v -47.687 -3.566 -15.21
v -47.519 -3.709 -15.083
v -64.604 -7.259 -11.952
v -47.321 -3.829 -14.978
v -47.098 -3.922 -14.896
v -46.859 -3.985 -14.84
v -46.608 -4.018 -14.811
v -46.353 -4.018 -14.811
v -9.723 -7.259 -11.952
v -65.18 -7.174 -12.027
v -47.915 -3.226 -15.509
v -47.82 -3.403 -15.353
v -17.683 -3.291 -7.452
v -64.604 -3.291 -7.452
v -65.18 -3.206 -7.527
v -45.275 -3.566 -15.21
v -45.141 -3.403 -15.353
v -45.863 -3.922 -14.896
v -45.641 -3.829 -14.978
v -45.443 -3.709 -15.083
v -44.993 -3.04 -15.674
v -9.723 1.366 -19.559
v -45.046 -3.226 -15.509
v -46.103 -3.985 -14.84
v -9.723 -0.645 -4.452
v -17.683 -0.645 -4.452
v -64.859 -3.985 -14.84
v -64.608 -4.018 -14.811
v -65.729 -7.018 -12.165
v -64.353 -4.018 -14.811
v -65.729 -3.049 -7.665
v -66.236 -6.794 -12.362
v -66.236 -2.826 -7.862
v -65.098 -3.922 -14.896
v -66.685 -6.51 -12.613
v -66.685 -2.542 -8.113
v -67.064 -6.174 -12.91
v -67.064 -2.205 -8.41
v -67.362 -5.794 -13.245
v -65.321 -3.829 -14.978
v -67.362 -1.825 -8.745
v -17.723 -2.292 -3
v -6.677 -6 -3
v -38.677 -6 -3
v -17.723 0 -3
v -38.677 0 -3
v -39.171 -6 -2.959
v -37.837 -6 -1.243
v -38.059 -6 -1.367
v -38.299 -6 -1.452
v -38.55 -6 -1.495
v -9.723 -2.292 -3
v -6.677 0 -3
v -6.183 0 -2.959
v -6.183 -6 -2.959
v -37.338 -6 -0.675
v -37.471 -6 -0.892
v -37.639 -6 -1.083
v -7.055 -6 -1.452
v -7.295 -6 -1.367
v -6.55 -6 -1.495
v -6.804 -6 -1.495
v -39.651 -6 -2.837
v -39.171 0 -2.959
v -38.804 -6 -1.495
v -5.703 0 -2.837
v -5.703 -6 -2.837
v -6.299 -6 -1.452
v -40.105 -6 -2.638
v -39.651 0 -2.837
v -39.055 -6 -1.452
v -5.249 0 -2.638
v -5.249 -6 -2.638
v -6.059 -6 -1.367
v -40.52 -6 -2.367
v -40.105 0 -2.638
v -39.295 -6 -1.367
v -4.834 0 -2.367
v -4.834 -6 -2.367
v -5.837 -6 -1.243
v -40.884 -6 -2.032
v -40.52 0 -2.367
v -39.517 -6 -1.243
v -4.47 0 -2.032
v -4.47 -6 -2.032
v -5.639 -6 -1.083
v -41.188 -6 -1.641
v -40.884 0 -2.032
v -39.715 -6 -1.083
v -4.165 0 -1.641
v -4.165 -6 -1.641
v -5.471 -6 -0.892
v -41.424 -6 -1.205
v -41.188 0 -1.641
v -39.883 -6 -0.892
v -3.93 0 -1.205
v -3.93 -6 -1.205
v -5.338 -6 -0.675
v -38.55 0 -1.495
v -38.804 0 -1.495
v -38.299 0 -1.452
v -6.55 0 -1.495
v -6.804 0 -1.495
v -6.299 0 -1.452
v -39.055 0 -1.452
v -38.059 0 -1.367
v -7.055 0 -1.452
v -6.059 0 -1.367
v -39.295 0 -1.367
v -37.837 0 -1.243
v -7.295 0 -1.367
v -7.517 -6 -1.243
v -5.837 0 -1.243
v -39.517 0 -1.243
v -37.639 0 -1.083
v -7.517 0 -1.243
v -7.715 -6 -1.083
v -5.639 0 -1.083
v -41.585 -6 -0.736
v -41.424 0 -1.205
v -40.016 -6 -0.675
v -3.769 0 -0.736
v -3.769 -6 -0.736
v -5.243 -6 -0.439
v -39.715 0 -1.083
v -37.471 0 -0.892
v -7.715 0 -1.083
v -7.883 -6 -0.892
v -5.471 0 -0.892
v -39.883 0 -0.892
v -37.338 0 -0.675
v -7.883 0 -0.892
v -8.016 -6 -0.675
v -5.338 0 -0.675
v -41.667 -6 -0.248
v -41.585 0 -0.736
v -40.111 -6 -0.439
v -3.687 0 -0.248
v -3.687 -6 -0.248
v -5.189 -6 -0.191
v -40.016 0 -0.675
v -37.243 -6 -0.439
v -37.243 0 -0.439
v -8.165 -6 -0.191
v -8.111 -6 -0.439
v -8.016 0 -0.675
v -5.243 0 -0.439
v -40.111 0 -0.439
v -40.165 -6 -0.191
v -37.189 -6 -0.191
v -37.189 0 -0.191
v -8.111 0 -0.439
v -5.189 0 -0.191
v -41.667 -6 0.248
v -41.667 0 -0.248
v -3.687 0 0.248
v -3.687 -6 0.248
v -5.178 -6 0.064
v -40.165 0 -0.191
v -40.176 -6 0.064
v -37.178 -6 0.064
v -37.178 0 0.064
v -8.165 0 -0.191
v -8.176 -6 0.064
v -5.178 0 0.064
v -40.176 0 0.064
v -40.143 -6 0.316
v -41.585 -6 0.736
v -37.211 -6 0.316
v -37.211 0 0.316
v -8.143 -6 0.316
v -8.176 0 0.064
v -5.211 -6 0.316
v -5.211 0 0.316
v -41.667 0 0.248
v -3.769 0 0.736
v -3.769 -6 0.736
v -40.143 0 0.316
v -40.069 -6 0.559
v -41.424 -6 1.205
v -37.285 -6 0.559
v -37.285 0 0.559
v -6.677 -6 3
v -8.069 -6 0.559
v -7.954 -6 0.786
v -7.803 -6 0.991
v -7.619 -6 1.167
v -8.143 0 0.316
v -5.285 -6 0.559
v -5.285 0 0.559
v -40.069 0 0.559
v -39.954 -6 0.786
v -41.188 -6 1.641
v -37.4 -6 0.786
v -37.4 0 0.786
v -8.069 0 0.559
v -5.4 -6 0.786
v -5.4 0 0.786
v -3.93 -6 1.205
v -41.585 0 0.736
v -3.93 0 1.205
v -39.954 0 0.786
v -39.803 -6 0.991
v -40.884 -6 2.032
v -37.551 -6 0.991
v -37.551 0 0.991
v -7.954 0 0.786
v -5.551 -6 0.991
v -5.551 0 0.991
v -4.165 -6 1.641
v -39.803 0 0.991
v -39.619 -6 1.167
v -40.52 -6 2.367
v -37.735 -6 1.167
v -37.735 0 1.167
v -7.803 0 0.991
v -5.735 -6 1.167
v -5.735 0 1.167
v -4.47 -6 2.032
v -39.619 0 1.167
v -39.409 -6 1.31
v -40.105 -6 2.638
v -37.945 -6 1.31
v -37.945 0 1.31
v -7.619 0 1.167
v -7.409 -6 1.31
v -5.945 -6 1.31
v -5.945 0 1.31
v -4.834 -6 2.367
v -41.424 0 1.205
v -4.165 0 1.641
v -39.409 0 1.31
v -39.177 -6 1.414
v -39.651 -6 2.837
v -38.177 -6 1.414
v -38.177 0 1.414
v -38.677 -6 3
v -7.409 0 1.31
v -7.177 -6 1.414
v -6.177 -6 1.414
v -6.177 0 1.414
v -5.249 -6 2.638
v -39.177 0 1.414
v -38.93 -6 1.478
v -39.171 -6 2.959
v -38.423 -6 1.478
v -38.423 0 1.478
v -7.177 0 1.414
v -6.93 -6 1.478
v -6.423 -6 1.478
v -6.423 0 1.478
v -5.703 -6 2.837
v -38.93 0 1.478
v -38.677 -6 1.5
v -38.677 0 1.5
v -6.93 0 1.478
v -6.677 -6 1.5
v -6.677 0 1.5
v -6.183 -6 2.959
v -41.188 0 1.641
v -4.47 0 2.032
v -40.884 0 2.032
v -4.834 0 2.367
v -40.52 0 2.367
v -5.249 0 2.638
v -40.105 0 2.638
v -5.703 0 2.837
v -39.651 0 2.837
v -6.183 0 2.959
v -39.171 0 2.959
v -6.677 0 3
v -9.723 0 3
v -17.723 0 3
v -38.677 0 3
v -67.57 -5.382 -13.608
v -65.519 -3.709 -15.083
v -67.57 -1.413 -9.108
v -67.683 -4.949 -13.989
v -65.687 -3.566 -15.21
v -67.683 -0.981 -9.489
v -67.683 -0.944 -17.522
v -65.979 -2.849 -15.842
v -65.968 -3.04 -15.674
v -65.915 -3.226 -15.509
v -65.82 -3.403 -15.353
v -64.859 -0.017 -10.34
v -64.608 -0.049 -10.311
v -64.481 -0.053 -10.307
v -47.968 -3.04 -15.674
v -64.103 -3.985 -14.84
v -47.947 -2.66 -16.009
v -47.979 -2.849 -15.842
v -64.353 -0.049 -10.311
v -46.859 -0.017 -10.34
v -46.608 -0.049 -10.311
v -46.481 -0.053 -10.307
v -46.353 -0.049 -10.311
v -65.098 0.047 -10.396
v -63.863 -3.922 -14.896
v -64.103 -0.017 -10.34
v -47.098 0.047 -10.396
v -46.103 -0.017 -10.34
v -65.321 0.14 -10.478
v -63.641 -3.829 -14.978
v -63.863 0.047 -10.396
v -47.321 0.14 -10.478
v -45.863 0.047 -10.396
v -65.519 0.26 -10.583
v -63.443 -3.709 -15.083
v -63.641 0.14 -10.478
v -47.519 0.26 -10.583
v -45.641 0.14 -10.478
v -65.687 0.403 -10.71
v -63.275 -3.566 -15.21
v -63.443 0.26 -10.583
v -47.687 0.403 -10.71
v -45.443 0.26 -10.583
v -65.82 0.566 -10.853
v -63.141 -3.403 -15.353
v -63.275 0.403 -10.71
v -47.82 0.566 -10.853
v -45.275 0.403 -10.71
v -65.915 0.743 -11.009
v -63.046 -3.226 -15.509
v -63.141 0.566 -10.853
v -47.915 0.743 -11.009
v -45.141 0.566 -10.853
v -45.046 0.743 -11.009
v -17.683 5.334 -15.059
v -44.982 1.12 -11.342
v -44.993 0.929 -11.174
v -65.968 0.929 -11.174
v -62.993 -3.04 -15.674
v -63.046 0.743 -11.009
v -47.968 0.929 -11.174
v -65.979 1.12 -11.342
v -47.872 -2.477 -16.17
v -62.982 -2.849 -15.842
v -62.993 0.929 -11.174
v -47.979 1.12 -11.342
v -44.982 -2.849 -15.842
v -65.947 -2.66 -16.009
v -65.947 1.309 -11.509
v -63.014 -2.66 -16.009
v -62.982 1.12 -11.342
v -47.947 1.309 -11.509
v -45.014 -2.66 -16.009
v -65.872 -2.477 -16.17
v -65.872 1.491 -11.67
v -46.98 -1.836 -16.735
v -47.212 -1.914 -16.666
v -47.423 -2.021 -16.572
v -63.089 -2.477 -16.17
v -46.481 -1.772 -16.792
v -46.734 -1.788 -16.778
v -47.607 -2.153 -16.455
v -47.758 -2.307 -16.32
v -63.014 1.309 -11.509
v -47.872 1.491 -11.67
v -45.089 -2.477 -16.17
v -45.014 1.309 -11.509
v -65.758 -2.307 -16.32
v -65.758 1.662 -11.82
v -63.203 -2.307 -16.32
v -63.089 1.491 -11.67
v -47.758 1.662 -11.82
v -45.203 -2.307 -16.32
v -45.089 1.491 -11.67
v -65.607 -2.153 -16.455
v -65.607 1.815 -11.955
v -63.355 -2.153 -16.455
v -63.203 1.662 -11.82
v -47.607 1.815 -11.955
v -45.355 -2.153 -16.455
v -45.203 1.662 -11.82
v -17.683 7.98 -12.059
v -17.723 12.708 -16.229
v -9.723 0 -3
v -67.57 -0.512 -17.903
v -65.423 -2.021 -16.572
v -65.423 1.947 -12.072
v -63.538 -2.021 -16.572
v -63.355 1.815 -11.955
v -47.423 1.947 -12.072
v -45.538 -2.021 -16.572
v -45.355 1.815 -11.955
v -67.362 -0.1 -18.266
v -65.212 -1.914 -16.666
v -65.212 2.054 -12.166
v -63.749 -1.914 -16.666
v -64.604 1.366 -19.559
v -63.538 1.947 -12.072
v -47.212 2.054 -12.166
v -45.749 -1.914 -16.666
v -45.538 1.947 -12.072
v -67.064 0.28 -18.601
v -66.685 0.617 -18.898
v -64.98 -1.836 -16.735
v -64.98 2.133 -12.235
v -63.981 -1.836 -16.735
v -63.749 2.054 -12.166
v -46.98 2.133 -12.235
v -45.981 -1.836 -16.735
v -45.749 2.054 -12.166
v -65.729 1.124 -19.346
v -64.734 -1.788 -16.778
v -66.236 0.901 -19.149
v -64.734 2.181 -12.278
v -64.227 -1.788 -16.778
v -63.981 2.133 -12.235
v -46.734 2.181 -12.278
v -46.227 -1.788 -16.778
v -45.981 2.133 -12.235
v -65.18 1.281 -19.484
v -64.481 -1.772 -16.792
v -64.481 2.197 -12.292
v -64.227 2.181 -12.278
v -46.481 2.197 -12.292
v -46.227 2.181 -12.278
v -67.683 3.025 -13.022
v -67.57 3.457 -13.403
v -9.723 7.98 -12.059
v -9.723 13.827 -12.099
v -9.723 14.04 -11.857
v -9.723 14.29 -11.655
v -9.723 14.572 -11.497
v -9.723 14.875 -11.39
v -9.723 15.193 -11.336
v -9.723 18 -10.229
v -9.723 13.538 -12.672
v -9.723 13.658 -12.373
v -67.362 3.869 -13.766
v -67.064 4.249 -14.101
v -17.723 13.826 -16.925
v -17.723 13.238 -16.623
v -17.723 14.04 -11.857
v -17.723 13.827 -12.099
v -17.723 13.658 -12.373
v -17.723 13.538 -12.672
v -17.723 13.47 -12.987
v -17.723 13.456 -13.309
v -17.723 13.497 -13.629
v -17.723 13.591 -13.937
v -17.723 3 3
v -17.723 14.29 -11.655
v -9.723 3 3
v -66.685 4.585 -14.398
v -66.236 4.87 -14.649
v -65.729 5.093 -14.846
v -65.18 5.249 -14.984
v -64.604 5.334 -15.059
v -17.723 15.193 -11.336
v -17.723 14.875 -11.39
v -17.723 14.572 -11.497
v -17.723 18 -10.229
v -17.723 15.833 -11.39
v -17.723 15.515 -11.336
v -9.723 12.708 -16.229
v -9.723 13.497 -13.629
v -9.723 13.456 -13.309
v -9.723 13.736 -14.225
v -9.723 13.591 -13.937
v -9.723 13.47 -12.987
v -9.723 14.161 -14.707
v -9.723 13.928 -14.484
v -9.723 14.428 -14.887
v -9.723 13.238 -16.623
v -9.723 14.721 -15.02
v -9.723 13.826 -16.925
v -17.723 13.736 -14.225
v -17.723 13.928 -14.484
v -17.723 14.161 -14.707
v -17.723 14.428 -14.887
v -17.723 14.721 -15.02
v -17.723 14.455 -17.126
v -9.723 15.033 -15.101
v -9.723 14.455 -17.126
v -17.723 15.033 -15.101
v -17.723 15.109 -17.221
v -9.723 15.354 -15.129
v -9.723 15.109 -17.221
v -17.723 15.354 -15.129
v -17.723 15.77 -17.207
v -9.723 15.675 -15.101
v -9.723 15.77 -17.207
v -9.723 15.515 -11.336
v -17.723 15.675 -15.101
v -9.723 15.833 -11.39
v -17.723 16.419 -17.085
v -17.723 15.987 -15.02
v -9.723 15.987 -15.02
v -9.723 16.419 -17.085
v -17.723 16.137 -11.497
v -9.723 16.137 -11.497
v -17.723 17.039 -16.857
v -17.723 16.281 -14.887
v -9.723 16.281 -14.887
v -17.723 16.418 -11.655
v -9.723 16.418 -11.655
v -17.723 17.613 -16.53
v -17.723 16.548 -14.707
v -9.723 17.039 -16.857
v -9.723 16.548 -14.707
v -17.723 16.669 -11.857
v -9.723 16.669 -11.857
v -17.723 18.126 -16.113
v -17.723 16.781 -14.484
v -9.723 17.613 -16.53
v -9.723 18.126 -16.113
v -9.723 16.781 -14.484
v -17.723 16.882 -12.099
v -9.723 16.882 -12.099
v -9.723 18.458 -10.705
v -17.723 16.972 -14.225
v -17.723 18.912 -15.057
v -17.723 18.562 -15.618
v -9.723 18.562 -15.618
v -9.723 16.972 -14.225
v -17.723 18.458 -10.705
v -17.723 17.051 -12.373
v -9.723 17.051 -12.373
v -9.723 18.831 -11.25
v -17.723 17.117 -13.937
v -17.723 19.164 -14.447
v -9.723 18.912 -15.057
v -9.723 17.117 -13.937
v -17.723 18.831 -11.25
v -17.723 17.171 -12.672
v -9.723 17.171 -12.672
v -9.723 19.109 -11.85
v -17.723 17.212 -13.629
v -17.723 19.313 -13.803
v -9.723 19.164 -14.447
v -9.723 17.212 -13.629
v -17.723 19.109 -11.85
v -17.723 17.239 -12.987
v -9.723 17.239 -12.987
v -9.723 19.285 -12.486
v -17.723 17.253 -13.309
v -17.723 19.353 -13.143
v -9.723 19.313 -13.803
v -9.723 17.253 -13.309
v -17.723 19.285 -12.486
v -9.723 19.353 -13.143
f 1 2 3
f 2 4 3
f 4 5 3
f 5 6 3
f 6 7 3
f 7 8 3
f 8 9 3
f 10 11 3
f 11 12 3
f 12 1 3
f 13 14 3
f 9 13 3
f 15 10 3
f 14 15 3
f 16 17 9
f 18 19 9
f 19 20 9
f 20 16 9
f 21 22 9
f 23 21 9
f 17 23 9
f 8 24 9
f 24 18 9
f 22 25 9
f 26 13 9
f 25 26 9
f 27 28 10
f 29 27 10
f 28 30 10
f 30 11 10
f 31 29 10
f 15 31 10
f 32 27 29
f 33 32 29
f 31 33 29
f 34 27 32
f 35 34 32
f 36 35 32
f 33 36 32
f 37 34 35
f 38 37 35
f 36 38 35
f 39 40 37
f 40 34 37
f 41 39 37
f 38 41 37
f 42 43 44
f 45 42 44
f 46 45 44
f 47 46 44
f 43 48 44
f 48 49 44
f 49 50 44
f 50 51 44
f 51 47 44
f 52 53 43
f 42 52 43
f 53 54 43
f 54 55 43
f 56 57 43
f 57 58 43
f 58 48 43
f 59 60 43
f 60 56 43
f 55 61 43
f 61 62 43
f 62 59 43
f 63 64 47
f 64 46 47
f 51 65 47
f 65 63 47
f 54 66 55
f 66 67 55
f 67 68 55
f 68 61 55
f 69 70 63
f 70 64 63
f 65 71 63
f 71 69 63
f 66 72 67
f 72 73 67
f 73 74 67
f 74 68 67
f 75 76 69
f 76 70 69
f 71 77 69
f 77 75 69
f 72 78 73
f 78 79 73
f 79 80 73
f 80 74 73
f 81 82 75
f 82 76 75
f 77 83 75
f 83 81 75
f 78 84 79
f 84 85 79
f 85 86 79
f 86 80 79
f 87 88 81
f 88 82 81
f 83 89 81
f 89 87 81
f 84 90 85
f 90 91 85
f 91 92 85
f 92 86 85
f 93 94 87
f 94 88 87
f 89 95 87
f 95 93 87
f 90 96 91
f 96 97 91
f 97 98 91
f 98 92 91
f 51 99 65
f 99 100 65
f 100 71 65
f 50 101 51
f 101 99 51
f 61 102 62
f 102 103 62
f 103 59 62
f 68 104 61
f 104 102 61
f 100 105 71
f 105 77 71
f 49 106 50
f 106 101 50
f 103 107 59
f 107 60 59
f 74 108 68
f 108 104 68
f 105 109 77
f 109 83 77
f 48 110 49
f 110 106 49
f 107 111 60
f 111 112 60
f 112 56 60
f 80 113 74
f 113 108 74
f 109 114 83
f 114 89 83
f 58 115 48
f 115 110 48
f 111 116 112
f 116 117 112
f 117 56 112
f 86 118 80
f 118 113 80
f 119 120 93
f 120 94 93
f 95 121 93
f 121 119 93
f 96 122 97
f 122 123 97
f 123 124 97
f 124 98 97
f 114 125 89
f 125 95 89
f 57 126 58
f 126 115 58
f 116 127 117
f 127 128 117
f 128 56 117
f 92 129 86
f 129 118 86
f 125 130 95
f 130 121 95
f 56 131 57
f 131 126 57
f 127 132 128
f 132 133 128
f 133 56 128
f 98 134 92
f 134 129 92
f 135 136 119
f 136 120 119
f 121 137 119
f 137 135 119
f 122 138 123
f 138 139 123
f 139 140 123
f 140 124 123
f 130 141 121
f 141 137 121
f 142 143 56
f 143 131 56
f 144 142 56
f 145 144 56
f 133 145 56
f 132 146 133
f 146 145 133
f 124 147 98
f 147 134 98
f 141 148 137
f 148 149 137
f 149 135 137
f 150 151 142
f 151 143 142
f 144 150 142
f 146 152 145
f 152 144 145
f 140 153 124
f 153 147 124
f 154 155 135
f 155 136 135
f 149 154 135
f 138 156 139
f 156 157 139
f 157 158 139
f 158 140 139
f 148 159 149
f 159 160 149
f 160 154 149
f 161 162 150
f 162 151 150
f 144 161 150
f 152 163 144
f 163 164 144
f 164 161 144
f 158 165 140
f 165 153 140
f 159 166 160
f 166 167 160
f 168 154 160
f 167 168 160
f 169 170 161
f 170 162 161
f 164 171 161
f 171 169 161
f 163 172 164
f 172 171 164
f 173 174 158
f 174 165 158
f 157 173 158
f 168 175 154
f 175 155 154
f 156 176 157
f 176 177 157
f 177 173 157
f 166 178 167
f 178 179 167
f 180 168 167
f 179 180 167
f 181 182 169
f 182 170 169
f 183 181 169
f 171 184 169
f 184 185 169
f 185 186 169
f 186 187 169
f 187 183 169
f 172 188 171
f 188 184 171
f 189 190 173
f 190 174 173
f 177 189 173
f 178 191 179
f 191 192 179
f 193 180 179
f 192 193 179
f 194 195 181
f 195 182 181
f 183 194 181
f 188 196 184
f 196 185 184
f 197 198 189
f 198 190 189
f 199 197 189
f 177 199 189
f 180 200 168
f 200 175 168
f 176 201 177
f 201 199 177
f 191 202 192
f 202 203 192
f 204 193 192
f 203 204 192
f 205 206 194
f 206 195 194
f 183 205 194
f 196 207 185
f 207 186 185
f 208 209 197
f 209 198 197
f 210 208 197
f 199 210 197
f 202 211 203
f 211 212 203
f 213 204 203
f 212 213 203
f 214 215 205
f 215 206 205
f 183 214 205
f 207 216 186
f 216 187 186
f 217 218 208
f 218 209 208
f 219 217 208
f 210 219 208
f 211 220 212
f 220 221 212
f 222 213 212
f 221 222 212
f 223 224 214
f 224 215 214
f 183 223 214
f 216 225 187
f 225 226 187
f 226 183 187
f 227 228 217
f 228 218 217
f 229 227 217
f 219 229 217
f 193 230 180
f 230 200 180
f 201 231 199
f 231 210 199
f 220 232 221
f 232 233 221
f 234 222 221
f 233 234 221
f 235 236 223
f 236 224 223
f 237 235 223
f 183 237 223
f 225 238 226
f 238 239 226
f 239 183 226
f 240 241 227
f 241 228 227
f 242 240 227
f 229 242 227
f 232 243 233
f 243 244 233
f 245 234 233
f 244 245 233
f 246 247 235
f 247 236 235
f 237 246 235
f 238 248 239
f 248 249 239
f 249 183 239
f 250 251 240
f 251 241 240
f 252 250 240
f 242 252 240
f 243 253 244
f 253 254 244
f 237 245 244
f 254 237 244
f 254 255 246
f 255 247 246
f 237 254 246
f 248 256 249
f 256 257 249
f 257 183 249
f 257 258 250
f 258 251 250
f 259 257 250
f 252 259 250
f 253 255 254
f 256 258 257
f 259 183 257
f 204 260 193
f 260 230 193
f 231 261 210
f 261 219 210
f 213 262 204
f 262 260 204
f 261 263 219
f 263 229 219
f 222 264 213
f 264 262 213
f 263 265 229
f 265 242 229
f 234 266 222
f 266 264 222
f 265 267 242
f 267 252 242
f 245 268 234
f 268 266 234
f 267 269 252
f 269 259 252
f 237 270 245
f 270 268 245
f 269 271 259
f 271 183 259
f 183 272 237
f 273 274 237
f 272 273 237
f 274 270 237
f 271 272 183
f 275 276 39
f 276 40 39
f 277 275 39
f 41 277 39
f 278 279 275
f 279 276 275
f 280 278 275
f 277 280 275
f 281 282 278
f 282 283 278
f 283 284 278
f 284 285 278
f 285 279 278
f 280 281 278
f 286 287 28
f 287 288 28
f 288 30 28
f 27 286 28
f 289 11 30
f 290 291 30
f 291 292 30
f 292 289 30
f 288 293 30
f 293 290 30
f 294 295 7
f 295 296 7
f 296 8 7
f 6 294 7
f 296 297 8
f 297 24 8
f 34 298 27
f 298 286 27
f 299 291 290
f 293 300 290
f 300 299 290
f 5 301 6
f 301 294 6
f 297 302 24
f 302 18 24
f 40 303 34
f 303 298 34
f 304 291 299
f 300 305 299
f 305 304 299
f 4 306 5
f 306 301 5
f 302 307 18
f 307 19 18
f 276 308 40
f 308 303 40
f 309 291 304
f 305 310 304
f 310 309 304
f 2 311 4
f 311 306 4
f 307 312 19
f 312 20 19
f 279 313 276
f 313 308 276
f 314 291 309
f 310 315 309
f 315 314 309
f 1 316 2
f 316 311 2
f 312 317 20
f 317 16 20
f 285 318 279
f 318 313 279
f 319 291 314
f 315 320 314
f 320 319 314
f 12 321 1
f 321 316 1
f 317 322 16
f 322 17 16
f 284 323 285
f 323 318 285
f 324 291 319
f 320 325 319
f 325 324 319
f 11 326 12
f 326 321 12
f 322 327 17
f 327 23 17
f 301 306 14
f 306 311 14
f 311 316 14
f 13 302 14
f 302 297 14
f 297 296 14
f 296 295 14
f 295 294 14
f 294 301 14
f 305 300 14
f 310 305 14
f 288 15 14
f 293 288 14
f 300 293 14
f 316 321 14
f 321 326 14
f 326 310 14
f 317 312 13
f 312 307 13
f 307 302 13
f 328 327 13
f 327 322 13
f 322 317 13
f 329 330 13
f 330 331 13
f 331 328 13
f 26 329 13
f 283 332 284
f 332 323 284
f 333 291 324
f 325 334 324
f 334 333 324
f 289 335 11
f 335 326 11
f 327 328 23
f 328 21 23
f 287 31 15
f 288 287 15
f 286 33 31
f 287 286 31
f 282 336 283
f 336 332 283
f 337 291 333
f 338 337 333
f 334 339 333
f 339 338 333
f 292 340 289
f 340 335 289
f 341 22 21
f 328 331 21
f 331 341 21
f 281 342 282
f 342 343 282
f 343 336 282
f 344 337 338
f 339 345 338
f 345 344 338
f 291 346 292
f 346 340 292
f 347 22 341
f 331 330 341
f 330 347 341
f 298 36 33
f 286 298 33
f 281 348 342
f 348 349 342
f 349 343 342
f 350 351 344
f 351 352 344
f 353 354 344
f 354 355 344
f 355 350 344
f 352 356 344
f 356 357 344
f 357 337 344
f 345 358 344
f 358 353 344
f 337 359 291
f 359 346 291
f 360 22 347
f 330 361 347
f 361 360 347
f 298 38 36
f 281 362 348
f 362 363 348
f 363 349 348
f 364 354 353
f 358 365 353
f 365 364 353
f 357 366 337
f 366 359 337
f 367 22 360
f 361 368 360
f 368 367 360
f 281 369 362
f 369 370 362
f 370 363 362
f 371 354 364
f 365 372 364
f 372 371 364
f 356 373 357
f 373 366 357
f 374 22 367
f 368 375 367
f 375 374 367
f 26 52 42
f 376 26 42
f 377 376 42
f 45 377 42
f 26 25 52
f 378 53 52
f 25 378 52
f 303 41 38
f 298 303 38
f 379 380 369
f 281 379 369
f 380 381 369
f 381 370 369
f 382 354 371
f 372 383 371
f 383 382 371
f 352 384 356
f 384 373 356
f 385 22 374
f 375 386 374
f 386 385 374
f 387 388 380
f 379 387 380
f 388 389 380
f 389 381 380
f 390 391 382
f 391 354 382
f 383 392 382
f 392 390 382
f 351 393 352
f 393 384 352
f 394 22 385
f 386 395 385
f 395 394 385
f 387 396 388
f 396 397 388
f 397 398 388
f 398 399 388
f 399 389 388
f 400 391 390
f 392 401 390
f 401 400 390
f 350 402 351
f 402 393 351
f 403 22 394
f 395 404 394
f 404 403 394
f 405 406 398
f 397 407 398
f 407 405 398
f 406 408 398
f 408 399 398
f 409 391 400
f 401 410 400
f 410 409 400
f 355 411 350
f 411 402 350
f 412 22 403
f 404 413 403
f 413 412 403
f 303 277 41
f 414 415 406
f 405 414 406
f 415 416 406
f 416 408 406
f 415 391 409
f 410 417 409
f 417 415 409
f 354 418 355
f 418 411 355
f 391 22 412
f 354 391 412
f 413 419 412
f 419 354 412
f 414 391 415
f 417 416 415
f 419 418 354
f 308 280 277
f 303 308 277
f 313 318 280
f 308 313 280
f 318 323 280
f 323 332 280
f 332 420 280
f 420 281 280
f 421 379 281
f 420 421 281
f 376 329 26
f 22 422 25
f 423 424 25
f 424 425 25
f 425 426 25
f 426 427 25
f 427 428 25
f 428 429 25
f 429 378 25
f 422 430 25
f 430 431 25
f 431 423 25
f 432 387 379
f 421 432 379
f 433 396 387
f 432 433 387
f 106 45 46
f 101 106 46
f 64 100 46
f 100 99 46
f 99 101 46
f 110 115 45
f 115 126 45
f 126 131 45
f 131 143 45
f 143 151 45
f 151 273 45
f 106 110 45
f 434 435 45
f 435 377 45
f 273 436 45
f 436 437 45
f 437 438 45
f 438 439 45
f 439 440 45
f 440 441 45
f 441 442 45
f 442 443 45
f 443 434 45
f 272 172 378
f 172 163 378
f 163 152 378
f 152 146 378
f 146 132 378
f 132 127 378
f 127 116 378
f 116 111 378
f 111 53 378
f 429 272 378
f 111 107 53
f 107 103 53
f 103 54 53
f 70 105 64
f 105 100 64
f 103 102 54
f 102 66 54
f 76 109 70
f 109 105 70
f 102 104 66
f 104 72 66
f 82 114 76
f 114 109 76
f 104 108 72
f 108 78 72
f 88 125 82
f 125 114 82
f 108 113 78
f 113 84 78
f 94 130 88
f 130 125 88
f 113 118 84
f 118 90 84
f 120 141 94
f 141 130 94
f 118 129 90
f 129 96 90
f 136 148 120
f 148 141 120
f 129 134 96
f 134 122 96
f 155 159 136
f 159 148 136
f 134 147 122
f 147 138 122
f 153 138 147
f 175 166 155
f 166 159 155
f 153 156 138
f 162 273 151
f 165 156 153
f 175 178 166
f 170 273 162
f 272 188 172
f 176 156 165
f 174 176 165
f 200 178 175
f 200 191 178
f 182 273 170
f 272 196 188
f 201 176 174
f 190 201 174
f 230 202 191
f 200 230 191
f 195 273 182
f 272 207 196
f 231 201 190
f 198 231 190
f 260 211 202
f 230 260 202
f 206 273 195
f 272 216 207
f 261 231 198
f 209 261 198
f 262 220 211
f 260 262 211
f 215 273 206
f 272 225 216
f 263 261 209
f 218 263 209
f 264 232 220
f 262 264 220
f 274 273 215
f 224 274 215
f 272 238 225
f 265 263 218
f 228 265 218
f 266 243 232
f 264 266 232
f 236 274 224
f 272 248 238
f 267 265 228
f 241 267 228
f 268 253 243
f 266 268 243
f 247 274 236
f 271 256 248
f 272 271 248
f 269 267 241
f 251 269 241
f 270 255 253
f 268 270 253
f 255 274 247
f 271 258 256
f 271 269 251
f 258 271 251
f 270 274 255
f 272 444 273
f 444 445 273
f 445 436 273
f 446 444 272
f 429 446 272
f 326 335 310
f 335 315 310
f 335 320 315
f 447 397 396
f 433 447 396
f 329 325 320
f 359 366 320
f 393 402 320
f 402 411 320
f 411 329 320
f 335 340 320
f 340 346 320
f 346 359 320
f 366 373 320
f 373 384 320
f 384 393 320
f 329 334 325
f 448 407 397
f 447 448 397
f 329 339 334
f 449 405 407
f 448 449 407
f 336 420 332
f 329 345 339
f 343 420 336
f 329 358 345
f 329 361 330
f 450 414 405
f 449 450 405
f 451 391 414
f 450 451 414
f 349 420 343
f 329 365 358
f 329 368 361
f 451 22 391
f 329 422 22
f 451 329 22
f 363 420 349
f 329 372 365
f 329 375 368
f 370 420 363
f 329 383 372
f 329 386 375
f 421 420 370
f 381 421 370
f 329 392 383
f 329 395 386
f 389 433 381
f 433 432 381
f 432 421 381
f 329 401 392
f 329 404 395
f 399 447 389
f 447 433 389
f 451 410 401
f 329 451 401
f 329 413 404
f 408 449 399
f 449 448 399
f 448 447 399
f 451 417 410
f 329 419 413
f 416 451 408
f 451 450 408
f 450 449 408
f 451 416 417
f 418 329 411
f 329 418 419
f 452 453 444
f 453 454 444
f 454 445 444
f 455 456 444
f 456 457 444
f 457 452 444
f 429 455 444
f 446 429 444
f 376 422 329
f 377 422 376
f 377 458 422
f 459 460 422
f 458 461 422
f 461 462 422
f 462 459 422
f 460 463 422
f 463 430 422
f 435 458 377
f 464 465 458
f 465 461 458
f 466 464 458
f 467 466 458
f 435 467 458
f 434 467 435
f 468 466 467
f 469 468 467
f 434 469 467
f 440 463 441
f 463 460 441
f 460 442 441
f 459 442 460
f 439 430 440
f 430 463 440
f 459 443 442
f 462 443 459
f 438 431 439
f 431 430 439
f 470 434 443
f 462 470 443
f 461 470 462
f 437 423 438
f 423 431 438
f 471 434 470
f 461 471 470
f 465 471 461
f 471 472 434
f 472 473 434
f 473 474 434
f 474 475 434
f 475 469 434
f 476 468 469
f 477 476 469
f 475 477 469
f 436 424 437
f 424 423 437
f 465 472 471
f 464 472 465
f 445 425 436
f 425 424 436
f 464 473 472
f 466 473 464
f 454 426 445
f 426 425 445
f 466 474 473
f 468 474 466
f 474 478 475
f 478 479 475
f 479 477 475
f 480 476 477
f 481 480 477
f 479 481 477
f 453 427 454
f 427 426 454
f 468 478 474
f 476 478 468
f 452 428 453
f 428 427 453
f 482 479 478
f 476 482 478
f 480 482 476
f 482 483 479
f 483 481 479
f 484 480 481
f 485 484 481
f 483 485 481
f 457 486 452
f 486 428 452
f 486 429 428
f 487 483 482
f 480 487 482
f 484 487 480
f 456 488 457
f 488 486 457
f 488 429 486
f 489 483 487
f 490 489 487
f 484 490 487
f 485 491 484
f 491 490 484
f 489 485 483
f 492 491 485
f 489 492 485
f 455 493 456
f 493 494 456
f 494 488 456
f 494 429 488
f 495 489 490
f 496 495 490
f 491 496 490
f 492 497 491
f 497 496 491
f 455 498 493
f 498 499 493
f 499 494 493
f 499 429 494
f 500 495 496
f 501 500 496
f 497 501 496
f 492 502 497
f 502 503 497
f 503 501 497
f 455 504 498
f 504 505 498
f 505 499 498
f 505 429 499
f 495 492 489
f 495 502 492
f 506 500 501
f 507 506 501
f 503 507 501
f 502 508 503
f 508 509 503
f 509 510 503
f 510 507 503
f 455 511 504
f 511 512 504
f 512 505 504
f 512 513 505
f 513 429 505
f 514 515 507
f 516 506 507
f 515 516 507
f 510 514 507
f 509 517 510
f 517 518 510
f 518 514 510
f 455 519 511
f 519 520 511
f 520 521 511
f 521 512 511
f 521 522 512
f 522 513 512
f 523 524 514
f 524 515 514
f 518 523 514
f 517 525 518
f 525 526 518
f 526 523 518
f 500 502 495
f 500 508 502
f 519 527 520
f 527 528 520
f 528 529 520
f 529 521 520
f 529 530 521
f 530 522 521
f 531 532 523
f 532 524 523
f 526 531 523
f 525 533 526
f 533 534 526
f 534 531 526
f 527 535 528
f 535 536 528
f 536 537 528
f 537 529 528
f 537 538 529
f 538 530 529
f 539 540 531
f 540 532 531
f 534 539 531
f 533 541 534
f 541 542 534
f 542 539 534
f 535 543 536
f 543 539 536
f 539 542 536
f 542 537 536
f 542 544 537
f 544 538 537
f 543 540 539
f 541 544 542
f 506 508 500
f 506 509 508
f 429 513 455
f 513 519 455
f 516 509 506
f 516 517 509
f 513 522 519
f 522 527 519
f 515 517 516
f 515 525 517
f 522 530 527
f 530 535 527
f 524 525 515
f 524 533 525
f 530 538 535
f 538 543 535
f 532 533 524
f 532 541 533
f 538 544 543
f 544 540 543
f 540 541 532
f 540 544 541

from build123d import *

# Parameters (mm, degrees)
SKETCH_1_R          = 1.5
EXTRUDE_2_DEPTH     = 6
SKETCH_1_4_W        = 8
SKETCH_1_4_H        = 6
EXTRUDE_3_DEPTH     = 3
EXTRUDE_28_DEPTH    = 8
SKETCH_4_W          = 7.960549586
SKETCH_4_H          = 11.5
EXTRUDE_29_DEPTH    = 10
EXTRUDE_30_DEPTH    = 50
SKETCH_7_R          = 1.5
CUT_EXTRUDE_1_DEPTH = 10
SKETCH_8_R          = 1.9
CUT_EXTRUDE_2_DEPTH = 19


with BuildPart() as part:
    # 草圖1 → 填料-伸長2 (new body)
    with BuildSketch(Plane(origin=(0, 0, 0), x_dir=(1, 0, 0), z_dir=(0, 1, 0))):
        with BuildLine():
            Line((-38.676968887, -3), (-6.676968887, -3))
            ThreePointArc((-6.676968887, -3), (-3.676968887, 0), (-6.676968887, 3))
            Line((-6.676968887, 3), (-38.676968887, 3))
            ThreePointArc((-38.676968887, 3), (-41.676968887, 0), (-38.676968887, -3))
        make_face()
        with Locations((-38.676968887, 0)):
            Circle(SKETCH_1_R, mode=Mode.SUBTRACT)
        with Locations((-6.676968887, 0)):
            Circle(SKETCH_1_R, mode=Mode.SUBTRACT)
    extrude(amount=-EXTRUDE_2_DEPTH)

    # 草圖1<4> → 填料-伸長3 (add)
    with BuildSketch(Plane(origin=(0, 0, 0), x_dir=(1, 0, 0), z_dir=(0, 1, 0))):
        with Locations((-13.722758256, 0)):
            Rectangle(SKETCH_1_4_W, SKETCH_1_4_H)
    extrude(amount=EXTRUDE_3_DEPTH)

    # 草圖3 → 填料-伸長28 (add)
    with BuildSketch(Plane(origin=(-9.722758256, 0, 0), x_dir=(0, 0, -1), z_dir=(1, 0, 0))):
        with BuildLine():
            Line((3, -2.291502622), (16.228756555, 12.708497378))
            ThreePointArc((16.228756555, 12.708497378), (15.874507866, 18.354248689), (10.228756555, 18))
            Line((10.228756555, 18), (-3, 3))
            Line((-3, 3), (3, -2.291502622))
        make_face()
    extrude(amount=-EXTRUDE_28_DEPTH)

    # 草圖4 → 填料-伸長29 (add)
    with BuildSketch(Plane(origin=(0, -2.49076751, -2.824264888), x_dir=(-1, 0, 0), z_dir=(0, -0.6614378277661491, -0.7499999999999987))):
        with Locations((13.703033049, 8.211179299)):
            Rectangle(SKETCH_4_W, SKETCH_4_H)
    extrude(amount=EXTRUDE_29_DEPTH)

    # 草圖6 → 填料-伸長30 (add)
    with BuildSketch(Plane.ZY.offset(17.683307842)):
        Polygon((-19.558716996, 1.365738687), (-11.952181977, -7.259261313), (-7.452181977, -3.290634347), (-15.058716996, 5.334365653), align=None)
    extrude(amount=EXTRUDE_30_DEPTH)

    # 草圖7 → 除料-伸長1 (cut)
    with BuildSketch(Plane(origin=(0, -9.105145787, -10.324264888), x_dir=(-1, 0, 0), z_dir=(0, -0.6614378277661491, -0.7499999999999987))):
        with BuildLine():
            Line((64.603588297, 2.461179299), (67.683307842, 2.461179299))
            Line((67.683307842, 2.461179299), (67.683307842, 5.540898844))
            ThreePointArc((67.683307842, 5.540898844), (66.684672199, 3.459814942), (64.603588297, 2.461179299))
        make_face()
        with Locations((64.480624333, 8.278010001)):
            Circle(SKETCH_7_R)
        with BuildLine():
            ThreePointArc((64.603588297, 13.961179299), (66.684672199, 12.962543656), (67.683307842, 10.881459754))
            Line((67.683307842, 10.881459754), (67.683307842, 13.961179299))
            Line((67.683307842, 13.961179299), (64.603588297, 13.961179299))
        make_face()
        with Locations((46.480624333, 8.278010001)):
            Circle(SKETCH_7_R)
    extrude(amount=-CUT_EXTRUDE_1_DEPTH, mode=Mode.SUBTRACT)

    # 草圖8 → 除料-伸長2 (cut)
    with BuildSketch(Plane(origin=(-9.722758256, 0, 0), x_dir=(0, 0, -1), z_dir=(1, 0, 0))):
        with Locations((13.228756555, 15.354248689)):
            Circle(SKETCH_8_R)
    extrude(amount=-CUT_EXTRUDE_2_DEPTH, mode=Mode.SUBTRACT)


solid = part.part
